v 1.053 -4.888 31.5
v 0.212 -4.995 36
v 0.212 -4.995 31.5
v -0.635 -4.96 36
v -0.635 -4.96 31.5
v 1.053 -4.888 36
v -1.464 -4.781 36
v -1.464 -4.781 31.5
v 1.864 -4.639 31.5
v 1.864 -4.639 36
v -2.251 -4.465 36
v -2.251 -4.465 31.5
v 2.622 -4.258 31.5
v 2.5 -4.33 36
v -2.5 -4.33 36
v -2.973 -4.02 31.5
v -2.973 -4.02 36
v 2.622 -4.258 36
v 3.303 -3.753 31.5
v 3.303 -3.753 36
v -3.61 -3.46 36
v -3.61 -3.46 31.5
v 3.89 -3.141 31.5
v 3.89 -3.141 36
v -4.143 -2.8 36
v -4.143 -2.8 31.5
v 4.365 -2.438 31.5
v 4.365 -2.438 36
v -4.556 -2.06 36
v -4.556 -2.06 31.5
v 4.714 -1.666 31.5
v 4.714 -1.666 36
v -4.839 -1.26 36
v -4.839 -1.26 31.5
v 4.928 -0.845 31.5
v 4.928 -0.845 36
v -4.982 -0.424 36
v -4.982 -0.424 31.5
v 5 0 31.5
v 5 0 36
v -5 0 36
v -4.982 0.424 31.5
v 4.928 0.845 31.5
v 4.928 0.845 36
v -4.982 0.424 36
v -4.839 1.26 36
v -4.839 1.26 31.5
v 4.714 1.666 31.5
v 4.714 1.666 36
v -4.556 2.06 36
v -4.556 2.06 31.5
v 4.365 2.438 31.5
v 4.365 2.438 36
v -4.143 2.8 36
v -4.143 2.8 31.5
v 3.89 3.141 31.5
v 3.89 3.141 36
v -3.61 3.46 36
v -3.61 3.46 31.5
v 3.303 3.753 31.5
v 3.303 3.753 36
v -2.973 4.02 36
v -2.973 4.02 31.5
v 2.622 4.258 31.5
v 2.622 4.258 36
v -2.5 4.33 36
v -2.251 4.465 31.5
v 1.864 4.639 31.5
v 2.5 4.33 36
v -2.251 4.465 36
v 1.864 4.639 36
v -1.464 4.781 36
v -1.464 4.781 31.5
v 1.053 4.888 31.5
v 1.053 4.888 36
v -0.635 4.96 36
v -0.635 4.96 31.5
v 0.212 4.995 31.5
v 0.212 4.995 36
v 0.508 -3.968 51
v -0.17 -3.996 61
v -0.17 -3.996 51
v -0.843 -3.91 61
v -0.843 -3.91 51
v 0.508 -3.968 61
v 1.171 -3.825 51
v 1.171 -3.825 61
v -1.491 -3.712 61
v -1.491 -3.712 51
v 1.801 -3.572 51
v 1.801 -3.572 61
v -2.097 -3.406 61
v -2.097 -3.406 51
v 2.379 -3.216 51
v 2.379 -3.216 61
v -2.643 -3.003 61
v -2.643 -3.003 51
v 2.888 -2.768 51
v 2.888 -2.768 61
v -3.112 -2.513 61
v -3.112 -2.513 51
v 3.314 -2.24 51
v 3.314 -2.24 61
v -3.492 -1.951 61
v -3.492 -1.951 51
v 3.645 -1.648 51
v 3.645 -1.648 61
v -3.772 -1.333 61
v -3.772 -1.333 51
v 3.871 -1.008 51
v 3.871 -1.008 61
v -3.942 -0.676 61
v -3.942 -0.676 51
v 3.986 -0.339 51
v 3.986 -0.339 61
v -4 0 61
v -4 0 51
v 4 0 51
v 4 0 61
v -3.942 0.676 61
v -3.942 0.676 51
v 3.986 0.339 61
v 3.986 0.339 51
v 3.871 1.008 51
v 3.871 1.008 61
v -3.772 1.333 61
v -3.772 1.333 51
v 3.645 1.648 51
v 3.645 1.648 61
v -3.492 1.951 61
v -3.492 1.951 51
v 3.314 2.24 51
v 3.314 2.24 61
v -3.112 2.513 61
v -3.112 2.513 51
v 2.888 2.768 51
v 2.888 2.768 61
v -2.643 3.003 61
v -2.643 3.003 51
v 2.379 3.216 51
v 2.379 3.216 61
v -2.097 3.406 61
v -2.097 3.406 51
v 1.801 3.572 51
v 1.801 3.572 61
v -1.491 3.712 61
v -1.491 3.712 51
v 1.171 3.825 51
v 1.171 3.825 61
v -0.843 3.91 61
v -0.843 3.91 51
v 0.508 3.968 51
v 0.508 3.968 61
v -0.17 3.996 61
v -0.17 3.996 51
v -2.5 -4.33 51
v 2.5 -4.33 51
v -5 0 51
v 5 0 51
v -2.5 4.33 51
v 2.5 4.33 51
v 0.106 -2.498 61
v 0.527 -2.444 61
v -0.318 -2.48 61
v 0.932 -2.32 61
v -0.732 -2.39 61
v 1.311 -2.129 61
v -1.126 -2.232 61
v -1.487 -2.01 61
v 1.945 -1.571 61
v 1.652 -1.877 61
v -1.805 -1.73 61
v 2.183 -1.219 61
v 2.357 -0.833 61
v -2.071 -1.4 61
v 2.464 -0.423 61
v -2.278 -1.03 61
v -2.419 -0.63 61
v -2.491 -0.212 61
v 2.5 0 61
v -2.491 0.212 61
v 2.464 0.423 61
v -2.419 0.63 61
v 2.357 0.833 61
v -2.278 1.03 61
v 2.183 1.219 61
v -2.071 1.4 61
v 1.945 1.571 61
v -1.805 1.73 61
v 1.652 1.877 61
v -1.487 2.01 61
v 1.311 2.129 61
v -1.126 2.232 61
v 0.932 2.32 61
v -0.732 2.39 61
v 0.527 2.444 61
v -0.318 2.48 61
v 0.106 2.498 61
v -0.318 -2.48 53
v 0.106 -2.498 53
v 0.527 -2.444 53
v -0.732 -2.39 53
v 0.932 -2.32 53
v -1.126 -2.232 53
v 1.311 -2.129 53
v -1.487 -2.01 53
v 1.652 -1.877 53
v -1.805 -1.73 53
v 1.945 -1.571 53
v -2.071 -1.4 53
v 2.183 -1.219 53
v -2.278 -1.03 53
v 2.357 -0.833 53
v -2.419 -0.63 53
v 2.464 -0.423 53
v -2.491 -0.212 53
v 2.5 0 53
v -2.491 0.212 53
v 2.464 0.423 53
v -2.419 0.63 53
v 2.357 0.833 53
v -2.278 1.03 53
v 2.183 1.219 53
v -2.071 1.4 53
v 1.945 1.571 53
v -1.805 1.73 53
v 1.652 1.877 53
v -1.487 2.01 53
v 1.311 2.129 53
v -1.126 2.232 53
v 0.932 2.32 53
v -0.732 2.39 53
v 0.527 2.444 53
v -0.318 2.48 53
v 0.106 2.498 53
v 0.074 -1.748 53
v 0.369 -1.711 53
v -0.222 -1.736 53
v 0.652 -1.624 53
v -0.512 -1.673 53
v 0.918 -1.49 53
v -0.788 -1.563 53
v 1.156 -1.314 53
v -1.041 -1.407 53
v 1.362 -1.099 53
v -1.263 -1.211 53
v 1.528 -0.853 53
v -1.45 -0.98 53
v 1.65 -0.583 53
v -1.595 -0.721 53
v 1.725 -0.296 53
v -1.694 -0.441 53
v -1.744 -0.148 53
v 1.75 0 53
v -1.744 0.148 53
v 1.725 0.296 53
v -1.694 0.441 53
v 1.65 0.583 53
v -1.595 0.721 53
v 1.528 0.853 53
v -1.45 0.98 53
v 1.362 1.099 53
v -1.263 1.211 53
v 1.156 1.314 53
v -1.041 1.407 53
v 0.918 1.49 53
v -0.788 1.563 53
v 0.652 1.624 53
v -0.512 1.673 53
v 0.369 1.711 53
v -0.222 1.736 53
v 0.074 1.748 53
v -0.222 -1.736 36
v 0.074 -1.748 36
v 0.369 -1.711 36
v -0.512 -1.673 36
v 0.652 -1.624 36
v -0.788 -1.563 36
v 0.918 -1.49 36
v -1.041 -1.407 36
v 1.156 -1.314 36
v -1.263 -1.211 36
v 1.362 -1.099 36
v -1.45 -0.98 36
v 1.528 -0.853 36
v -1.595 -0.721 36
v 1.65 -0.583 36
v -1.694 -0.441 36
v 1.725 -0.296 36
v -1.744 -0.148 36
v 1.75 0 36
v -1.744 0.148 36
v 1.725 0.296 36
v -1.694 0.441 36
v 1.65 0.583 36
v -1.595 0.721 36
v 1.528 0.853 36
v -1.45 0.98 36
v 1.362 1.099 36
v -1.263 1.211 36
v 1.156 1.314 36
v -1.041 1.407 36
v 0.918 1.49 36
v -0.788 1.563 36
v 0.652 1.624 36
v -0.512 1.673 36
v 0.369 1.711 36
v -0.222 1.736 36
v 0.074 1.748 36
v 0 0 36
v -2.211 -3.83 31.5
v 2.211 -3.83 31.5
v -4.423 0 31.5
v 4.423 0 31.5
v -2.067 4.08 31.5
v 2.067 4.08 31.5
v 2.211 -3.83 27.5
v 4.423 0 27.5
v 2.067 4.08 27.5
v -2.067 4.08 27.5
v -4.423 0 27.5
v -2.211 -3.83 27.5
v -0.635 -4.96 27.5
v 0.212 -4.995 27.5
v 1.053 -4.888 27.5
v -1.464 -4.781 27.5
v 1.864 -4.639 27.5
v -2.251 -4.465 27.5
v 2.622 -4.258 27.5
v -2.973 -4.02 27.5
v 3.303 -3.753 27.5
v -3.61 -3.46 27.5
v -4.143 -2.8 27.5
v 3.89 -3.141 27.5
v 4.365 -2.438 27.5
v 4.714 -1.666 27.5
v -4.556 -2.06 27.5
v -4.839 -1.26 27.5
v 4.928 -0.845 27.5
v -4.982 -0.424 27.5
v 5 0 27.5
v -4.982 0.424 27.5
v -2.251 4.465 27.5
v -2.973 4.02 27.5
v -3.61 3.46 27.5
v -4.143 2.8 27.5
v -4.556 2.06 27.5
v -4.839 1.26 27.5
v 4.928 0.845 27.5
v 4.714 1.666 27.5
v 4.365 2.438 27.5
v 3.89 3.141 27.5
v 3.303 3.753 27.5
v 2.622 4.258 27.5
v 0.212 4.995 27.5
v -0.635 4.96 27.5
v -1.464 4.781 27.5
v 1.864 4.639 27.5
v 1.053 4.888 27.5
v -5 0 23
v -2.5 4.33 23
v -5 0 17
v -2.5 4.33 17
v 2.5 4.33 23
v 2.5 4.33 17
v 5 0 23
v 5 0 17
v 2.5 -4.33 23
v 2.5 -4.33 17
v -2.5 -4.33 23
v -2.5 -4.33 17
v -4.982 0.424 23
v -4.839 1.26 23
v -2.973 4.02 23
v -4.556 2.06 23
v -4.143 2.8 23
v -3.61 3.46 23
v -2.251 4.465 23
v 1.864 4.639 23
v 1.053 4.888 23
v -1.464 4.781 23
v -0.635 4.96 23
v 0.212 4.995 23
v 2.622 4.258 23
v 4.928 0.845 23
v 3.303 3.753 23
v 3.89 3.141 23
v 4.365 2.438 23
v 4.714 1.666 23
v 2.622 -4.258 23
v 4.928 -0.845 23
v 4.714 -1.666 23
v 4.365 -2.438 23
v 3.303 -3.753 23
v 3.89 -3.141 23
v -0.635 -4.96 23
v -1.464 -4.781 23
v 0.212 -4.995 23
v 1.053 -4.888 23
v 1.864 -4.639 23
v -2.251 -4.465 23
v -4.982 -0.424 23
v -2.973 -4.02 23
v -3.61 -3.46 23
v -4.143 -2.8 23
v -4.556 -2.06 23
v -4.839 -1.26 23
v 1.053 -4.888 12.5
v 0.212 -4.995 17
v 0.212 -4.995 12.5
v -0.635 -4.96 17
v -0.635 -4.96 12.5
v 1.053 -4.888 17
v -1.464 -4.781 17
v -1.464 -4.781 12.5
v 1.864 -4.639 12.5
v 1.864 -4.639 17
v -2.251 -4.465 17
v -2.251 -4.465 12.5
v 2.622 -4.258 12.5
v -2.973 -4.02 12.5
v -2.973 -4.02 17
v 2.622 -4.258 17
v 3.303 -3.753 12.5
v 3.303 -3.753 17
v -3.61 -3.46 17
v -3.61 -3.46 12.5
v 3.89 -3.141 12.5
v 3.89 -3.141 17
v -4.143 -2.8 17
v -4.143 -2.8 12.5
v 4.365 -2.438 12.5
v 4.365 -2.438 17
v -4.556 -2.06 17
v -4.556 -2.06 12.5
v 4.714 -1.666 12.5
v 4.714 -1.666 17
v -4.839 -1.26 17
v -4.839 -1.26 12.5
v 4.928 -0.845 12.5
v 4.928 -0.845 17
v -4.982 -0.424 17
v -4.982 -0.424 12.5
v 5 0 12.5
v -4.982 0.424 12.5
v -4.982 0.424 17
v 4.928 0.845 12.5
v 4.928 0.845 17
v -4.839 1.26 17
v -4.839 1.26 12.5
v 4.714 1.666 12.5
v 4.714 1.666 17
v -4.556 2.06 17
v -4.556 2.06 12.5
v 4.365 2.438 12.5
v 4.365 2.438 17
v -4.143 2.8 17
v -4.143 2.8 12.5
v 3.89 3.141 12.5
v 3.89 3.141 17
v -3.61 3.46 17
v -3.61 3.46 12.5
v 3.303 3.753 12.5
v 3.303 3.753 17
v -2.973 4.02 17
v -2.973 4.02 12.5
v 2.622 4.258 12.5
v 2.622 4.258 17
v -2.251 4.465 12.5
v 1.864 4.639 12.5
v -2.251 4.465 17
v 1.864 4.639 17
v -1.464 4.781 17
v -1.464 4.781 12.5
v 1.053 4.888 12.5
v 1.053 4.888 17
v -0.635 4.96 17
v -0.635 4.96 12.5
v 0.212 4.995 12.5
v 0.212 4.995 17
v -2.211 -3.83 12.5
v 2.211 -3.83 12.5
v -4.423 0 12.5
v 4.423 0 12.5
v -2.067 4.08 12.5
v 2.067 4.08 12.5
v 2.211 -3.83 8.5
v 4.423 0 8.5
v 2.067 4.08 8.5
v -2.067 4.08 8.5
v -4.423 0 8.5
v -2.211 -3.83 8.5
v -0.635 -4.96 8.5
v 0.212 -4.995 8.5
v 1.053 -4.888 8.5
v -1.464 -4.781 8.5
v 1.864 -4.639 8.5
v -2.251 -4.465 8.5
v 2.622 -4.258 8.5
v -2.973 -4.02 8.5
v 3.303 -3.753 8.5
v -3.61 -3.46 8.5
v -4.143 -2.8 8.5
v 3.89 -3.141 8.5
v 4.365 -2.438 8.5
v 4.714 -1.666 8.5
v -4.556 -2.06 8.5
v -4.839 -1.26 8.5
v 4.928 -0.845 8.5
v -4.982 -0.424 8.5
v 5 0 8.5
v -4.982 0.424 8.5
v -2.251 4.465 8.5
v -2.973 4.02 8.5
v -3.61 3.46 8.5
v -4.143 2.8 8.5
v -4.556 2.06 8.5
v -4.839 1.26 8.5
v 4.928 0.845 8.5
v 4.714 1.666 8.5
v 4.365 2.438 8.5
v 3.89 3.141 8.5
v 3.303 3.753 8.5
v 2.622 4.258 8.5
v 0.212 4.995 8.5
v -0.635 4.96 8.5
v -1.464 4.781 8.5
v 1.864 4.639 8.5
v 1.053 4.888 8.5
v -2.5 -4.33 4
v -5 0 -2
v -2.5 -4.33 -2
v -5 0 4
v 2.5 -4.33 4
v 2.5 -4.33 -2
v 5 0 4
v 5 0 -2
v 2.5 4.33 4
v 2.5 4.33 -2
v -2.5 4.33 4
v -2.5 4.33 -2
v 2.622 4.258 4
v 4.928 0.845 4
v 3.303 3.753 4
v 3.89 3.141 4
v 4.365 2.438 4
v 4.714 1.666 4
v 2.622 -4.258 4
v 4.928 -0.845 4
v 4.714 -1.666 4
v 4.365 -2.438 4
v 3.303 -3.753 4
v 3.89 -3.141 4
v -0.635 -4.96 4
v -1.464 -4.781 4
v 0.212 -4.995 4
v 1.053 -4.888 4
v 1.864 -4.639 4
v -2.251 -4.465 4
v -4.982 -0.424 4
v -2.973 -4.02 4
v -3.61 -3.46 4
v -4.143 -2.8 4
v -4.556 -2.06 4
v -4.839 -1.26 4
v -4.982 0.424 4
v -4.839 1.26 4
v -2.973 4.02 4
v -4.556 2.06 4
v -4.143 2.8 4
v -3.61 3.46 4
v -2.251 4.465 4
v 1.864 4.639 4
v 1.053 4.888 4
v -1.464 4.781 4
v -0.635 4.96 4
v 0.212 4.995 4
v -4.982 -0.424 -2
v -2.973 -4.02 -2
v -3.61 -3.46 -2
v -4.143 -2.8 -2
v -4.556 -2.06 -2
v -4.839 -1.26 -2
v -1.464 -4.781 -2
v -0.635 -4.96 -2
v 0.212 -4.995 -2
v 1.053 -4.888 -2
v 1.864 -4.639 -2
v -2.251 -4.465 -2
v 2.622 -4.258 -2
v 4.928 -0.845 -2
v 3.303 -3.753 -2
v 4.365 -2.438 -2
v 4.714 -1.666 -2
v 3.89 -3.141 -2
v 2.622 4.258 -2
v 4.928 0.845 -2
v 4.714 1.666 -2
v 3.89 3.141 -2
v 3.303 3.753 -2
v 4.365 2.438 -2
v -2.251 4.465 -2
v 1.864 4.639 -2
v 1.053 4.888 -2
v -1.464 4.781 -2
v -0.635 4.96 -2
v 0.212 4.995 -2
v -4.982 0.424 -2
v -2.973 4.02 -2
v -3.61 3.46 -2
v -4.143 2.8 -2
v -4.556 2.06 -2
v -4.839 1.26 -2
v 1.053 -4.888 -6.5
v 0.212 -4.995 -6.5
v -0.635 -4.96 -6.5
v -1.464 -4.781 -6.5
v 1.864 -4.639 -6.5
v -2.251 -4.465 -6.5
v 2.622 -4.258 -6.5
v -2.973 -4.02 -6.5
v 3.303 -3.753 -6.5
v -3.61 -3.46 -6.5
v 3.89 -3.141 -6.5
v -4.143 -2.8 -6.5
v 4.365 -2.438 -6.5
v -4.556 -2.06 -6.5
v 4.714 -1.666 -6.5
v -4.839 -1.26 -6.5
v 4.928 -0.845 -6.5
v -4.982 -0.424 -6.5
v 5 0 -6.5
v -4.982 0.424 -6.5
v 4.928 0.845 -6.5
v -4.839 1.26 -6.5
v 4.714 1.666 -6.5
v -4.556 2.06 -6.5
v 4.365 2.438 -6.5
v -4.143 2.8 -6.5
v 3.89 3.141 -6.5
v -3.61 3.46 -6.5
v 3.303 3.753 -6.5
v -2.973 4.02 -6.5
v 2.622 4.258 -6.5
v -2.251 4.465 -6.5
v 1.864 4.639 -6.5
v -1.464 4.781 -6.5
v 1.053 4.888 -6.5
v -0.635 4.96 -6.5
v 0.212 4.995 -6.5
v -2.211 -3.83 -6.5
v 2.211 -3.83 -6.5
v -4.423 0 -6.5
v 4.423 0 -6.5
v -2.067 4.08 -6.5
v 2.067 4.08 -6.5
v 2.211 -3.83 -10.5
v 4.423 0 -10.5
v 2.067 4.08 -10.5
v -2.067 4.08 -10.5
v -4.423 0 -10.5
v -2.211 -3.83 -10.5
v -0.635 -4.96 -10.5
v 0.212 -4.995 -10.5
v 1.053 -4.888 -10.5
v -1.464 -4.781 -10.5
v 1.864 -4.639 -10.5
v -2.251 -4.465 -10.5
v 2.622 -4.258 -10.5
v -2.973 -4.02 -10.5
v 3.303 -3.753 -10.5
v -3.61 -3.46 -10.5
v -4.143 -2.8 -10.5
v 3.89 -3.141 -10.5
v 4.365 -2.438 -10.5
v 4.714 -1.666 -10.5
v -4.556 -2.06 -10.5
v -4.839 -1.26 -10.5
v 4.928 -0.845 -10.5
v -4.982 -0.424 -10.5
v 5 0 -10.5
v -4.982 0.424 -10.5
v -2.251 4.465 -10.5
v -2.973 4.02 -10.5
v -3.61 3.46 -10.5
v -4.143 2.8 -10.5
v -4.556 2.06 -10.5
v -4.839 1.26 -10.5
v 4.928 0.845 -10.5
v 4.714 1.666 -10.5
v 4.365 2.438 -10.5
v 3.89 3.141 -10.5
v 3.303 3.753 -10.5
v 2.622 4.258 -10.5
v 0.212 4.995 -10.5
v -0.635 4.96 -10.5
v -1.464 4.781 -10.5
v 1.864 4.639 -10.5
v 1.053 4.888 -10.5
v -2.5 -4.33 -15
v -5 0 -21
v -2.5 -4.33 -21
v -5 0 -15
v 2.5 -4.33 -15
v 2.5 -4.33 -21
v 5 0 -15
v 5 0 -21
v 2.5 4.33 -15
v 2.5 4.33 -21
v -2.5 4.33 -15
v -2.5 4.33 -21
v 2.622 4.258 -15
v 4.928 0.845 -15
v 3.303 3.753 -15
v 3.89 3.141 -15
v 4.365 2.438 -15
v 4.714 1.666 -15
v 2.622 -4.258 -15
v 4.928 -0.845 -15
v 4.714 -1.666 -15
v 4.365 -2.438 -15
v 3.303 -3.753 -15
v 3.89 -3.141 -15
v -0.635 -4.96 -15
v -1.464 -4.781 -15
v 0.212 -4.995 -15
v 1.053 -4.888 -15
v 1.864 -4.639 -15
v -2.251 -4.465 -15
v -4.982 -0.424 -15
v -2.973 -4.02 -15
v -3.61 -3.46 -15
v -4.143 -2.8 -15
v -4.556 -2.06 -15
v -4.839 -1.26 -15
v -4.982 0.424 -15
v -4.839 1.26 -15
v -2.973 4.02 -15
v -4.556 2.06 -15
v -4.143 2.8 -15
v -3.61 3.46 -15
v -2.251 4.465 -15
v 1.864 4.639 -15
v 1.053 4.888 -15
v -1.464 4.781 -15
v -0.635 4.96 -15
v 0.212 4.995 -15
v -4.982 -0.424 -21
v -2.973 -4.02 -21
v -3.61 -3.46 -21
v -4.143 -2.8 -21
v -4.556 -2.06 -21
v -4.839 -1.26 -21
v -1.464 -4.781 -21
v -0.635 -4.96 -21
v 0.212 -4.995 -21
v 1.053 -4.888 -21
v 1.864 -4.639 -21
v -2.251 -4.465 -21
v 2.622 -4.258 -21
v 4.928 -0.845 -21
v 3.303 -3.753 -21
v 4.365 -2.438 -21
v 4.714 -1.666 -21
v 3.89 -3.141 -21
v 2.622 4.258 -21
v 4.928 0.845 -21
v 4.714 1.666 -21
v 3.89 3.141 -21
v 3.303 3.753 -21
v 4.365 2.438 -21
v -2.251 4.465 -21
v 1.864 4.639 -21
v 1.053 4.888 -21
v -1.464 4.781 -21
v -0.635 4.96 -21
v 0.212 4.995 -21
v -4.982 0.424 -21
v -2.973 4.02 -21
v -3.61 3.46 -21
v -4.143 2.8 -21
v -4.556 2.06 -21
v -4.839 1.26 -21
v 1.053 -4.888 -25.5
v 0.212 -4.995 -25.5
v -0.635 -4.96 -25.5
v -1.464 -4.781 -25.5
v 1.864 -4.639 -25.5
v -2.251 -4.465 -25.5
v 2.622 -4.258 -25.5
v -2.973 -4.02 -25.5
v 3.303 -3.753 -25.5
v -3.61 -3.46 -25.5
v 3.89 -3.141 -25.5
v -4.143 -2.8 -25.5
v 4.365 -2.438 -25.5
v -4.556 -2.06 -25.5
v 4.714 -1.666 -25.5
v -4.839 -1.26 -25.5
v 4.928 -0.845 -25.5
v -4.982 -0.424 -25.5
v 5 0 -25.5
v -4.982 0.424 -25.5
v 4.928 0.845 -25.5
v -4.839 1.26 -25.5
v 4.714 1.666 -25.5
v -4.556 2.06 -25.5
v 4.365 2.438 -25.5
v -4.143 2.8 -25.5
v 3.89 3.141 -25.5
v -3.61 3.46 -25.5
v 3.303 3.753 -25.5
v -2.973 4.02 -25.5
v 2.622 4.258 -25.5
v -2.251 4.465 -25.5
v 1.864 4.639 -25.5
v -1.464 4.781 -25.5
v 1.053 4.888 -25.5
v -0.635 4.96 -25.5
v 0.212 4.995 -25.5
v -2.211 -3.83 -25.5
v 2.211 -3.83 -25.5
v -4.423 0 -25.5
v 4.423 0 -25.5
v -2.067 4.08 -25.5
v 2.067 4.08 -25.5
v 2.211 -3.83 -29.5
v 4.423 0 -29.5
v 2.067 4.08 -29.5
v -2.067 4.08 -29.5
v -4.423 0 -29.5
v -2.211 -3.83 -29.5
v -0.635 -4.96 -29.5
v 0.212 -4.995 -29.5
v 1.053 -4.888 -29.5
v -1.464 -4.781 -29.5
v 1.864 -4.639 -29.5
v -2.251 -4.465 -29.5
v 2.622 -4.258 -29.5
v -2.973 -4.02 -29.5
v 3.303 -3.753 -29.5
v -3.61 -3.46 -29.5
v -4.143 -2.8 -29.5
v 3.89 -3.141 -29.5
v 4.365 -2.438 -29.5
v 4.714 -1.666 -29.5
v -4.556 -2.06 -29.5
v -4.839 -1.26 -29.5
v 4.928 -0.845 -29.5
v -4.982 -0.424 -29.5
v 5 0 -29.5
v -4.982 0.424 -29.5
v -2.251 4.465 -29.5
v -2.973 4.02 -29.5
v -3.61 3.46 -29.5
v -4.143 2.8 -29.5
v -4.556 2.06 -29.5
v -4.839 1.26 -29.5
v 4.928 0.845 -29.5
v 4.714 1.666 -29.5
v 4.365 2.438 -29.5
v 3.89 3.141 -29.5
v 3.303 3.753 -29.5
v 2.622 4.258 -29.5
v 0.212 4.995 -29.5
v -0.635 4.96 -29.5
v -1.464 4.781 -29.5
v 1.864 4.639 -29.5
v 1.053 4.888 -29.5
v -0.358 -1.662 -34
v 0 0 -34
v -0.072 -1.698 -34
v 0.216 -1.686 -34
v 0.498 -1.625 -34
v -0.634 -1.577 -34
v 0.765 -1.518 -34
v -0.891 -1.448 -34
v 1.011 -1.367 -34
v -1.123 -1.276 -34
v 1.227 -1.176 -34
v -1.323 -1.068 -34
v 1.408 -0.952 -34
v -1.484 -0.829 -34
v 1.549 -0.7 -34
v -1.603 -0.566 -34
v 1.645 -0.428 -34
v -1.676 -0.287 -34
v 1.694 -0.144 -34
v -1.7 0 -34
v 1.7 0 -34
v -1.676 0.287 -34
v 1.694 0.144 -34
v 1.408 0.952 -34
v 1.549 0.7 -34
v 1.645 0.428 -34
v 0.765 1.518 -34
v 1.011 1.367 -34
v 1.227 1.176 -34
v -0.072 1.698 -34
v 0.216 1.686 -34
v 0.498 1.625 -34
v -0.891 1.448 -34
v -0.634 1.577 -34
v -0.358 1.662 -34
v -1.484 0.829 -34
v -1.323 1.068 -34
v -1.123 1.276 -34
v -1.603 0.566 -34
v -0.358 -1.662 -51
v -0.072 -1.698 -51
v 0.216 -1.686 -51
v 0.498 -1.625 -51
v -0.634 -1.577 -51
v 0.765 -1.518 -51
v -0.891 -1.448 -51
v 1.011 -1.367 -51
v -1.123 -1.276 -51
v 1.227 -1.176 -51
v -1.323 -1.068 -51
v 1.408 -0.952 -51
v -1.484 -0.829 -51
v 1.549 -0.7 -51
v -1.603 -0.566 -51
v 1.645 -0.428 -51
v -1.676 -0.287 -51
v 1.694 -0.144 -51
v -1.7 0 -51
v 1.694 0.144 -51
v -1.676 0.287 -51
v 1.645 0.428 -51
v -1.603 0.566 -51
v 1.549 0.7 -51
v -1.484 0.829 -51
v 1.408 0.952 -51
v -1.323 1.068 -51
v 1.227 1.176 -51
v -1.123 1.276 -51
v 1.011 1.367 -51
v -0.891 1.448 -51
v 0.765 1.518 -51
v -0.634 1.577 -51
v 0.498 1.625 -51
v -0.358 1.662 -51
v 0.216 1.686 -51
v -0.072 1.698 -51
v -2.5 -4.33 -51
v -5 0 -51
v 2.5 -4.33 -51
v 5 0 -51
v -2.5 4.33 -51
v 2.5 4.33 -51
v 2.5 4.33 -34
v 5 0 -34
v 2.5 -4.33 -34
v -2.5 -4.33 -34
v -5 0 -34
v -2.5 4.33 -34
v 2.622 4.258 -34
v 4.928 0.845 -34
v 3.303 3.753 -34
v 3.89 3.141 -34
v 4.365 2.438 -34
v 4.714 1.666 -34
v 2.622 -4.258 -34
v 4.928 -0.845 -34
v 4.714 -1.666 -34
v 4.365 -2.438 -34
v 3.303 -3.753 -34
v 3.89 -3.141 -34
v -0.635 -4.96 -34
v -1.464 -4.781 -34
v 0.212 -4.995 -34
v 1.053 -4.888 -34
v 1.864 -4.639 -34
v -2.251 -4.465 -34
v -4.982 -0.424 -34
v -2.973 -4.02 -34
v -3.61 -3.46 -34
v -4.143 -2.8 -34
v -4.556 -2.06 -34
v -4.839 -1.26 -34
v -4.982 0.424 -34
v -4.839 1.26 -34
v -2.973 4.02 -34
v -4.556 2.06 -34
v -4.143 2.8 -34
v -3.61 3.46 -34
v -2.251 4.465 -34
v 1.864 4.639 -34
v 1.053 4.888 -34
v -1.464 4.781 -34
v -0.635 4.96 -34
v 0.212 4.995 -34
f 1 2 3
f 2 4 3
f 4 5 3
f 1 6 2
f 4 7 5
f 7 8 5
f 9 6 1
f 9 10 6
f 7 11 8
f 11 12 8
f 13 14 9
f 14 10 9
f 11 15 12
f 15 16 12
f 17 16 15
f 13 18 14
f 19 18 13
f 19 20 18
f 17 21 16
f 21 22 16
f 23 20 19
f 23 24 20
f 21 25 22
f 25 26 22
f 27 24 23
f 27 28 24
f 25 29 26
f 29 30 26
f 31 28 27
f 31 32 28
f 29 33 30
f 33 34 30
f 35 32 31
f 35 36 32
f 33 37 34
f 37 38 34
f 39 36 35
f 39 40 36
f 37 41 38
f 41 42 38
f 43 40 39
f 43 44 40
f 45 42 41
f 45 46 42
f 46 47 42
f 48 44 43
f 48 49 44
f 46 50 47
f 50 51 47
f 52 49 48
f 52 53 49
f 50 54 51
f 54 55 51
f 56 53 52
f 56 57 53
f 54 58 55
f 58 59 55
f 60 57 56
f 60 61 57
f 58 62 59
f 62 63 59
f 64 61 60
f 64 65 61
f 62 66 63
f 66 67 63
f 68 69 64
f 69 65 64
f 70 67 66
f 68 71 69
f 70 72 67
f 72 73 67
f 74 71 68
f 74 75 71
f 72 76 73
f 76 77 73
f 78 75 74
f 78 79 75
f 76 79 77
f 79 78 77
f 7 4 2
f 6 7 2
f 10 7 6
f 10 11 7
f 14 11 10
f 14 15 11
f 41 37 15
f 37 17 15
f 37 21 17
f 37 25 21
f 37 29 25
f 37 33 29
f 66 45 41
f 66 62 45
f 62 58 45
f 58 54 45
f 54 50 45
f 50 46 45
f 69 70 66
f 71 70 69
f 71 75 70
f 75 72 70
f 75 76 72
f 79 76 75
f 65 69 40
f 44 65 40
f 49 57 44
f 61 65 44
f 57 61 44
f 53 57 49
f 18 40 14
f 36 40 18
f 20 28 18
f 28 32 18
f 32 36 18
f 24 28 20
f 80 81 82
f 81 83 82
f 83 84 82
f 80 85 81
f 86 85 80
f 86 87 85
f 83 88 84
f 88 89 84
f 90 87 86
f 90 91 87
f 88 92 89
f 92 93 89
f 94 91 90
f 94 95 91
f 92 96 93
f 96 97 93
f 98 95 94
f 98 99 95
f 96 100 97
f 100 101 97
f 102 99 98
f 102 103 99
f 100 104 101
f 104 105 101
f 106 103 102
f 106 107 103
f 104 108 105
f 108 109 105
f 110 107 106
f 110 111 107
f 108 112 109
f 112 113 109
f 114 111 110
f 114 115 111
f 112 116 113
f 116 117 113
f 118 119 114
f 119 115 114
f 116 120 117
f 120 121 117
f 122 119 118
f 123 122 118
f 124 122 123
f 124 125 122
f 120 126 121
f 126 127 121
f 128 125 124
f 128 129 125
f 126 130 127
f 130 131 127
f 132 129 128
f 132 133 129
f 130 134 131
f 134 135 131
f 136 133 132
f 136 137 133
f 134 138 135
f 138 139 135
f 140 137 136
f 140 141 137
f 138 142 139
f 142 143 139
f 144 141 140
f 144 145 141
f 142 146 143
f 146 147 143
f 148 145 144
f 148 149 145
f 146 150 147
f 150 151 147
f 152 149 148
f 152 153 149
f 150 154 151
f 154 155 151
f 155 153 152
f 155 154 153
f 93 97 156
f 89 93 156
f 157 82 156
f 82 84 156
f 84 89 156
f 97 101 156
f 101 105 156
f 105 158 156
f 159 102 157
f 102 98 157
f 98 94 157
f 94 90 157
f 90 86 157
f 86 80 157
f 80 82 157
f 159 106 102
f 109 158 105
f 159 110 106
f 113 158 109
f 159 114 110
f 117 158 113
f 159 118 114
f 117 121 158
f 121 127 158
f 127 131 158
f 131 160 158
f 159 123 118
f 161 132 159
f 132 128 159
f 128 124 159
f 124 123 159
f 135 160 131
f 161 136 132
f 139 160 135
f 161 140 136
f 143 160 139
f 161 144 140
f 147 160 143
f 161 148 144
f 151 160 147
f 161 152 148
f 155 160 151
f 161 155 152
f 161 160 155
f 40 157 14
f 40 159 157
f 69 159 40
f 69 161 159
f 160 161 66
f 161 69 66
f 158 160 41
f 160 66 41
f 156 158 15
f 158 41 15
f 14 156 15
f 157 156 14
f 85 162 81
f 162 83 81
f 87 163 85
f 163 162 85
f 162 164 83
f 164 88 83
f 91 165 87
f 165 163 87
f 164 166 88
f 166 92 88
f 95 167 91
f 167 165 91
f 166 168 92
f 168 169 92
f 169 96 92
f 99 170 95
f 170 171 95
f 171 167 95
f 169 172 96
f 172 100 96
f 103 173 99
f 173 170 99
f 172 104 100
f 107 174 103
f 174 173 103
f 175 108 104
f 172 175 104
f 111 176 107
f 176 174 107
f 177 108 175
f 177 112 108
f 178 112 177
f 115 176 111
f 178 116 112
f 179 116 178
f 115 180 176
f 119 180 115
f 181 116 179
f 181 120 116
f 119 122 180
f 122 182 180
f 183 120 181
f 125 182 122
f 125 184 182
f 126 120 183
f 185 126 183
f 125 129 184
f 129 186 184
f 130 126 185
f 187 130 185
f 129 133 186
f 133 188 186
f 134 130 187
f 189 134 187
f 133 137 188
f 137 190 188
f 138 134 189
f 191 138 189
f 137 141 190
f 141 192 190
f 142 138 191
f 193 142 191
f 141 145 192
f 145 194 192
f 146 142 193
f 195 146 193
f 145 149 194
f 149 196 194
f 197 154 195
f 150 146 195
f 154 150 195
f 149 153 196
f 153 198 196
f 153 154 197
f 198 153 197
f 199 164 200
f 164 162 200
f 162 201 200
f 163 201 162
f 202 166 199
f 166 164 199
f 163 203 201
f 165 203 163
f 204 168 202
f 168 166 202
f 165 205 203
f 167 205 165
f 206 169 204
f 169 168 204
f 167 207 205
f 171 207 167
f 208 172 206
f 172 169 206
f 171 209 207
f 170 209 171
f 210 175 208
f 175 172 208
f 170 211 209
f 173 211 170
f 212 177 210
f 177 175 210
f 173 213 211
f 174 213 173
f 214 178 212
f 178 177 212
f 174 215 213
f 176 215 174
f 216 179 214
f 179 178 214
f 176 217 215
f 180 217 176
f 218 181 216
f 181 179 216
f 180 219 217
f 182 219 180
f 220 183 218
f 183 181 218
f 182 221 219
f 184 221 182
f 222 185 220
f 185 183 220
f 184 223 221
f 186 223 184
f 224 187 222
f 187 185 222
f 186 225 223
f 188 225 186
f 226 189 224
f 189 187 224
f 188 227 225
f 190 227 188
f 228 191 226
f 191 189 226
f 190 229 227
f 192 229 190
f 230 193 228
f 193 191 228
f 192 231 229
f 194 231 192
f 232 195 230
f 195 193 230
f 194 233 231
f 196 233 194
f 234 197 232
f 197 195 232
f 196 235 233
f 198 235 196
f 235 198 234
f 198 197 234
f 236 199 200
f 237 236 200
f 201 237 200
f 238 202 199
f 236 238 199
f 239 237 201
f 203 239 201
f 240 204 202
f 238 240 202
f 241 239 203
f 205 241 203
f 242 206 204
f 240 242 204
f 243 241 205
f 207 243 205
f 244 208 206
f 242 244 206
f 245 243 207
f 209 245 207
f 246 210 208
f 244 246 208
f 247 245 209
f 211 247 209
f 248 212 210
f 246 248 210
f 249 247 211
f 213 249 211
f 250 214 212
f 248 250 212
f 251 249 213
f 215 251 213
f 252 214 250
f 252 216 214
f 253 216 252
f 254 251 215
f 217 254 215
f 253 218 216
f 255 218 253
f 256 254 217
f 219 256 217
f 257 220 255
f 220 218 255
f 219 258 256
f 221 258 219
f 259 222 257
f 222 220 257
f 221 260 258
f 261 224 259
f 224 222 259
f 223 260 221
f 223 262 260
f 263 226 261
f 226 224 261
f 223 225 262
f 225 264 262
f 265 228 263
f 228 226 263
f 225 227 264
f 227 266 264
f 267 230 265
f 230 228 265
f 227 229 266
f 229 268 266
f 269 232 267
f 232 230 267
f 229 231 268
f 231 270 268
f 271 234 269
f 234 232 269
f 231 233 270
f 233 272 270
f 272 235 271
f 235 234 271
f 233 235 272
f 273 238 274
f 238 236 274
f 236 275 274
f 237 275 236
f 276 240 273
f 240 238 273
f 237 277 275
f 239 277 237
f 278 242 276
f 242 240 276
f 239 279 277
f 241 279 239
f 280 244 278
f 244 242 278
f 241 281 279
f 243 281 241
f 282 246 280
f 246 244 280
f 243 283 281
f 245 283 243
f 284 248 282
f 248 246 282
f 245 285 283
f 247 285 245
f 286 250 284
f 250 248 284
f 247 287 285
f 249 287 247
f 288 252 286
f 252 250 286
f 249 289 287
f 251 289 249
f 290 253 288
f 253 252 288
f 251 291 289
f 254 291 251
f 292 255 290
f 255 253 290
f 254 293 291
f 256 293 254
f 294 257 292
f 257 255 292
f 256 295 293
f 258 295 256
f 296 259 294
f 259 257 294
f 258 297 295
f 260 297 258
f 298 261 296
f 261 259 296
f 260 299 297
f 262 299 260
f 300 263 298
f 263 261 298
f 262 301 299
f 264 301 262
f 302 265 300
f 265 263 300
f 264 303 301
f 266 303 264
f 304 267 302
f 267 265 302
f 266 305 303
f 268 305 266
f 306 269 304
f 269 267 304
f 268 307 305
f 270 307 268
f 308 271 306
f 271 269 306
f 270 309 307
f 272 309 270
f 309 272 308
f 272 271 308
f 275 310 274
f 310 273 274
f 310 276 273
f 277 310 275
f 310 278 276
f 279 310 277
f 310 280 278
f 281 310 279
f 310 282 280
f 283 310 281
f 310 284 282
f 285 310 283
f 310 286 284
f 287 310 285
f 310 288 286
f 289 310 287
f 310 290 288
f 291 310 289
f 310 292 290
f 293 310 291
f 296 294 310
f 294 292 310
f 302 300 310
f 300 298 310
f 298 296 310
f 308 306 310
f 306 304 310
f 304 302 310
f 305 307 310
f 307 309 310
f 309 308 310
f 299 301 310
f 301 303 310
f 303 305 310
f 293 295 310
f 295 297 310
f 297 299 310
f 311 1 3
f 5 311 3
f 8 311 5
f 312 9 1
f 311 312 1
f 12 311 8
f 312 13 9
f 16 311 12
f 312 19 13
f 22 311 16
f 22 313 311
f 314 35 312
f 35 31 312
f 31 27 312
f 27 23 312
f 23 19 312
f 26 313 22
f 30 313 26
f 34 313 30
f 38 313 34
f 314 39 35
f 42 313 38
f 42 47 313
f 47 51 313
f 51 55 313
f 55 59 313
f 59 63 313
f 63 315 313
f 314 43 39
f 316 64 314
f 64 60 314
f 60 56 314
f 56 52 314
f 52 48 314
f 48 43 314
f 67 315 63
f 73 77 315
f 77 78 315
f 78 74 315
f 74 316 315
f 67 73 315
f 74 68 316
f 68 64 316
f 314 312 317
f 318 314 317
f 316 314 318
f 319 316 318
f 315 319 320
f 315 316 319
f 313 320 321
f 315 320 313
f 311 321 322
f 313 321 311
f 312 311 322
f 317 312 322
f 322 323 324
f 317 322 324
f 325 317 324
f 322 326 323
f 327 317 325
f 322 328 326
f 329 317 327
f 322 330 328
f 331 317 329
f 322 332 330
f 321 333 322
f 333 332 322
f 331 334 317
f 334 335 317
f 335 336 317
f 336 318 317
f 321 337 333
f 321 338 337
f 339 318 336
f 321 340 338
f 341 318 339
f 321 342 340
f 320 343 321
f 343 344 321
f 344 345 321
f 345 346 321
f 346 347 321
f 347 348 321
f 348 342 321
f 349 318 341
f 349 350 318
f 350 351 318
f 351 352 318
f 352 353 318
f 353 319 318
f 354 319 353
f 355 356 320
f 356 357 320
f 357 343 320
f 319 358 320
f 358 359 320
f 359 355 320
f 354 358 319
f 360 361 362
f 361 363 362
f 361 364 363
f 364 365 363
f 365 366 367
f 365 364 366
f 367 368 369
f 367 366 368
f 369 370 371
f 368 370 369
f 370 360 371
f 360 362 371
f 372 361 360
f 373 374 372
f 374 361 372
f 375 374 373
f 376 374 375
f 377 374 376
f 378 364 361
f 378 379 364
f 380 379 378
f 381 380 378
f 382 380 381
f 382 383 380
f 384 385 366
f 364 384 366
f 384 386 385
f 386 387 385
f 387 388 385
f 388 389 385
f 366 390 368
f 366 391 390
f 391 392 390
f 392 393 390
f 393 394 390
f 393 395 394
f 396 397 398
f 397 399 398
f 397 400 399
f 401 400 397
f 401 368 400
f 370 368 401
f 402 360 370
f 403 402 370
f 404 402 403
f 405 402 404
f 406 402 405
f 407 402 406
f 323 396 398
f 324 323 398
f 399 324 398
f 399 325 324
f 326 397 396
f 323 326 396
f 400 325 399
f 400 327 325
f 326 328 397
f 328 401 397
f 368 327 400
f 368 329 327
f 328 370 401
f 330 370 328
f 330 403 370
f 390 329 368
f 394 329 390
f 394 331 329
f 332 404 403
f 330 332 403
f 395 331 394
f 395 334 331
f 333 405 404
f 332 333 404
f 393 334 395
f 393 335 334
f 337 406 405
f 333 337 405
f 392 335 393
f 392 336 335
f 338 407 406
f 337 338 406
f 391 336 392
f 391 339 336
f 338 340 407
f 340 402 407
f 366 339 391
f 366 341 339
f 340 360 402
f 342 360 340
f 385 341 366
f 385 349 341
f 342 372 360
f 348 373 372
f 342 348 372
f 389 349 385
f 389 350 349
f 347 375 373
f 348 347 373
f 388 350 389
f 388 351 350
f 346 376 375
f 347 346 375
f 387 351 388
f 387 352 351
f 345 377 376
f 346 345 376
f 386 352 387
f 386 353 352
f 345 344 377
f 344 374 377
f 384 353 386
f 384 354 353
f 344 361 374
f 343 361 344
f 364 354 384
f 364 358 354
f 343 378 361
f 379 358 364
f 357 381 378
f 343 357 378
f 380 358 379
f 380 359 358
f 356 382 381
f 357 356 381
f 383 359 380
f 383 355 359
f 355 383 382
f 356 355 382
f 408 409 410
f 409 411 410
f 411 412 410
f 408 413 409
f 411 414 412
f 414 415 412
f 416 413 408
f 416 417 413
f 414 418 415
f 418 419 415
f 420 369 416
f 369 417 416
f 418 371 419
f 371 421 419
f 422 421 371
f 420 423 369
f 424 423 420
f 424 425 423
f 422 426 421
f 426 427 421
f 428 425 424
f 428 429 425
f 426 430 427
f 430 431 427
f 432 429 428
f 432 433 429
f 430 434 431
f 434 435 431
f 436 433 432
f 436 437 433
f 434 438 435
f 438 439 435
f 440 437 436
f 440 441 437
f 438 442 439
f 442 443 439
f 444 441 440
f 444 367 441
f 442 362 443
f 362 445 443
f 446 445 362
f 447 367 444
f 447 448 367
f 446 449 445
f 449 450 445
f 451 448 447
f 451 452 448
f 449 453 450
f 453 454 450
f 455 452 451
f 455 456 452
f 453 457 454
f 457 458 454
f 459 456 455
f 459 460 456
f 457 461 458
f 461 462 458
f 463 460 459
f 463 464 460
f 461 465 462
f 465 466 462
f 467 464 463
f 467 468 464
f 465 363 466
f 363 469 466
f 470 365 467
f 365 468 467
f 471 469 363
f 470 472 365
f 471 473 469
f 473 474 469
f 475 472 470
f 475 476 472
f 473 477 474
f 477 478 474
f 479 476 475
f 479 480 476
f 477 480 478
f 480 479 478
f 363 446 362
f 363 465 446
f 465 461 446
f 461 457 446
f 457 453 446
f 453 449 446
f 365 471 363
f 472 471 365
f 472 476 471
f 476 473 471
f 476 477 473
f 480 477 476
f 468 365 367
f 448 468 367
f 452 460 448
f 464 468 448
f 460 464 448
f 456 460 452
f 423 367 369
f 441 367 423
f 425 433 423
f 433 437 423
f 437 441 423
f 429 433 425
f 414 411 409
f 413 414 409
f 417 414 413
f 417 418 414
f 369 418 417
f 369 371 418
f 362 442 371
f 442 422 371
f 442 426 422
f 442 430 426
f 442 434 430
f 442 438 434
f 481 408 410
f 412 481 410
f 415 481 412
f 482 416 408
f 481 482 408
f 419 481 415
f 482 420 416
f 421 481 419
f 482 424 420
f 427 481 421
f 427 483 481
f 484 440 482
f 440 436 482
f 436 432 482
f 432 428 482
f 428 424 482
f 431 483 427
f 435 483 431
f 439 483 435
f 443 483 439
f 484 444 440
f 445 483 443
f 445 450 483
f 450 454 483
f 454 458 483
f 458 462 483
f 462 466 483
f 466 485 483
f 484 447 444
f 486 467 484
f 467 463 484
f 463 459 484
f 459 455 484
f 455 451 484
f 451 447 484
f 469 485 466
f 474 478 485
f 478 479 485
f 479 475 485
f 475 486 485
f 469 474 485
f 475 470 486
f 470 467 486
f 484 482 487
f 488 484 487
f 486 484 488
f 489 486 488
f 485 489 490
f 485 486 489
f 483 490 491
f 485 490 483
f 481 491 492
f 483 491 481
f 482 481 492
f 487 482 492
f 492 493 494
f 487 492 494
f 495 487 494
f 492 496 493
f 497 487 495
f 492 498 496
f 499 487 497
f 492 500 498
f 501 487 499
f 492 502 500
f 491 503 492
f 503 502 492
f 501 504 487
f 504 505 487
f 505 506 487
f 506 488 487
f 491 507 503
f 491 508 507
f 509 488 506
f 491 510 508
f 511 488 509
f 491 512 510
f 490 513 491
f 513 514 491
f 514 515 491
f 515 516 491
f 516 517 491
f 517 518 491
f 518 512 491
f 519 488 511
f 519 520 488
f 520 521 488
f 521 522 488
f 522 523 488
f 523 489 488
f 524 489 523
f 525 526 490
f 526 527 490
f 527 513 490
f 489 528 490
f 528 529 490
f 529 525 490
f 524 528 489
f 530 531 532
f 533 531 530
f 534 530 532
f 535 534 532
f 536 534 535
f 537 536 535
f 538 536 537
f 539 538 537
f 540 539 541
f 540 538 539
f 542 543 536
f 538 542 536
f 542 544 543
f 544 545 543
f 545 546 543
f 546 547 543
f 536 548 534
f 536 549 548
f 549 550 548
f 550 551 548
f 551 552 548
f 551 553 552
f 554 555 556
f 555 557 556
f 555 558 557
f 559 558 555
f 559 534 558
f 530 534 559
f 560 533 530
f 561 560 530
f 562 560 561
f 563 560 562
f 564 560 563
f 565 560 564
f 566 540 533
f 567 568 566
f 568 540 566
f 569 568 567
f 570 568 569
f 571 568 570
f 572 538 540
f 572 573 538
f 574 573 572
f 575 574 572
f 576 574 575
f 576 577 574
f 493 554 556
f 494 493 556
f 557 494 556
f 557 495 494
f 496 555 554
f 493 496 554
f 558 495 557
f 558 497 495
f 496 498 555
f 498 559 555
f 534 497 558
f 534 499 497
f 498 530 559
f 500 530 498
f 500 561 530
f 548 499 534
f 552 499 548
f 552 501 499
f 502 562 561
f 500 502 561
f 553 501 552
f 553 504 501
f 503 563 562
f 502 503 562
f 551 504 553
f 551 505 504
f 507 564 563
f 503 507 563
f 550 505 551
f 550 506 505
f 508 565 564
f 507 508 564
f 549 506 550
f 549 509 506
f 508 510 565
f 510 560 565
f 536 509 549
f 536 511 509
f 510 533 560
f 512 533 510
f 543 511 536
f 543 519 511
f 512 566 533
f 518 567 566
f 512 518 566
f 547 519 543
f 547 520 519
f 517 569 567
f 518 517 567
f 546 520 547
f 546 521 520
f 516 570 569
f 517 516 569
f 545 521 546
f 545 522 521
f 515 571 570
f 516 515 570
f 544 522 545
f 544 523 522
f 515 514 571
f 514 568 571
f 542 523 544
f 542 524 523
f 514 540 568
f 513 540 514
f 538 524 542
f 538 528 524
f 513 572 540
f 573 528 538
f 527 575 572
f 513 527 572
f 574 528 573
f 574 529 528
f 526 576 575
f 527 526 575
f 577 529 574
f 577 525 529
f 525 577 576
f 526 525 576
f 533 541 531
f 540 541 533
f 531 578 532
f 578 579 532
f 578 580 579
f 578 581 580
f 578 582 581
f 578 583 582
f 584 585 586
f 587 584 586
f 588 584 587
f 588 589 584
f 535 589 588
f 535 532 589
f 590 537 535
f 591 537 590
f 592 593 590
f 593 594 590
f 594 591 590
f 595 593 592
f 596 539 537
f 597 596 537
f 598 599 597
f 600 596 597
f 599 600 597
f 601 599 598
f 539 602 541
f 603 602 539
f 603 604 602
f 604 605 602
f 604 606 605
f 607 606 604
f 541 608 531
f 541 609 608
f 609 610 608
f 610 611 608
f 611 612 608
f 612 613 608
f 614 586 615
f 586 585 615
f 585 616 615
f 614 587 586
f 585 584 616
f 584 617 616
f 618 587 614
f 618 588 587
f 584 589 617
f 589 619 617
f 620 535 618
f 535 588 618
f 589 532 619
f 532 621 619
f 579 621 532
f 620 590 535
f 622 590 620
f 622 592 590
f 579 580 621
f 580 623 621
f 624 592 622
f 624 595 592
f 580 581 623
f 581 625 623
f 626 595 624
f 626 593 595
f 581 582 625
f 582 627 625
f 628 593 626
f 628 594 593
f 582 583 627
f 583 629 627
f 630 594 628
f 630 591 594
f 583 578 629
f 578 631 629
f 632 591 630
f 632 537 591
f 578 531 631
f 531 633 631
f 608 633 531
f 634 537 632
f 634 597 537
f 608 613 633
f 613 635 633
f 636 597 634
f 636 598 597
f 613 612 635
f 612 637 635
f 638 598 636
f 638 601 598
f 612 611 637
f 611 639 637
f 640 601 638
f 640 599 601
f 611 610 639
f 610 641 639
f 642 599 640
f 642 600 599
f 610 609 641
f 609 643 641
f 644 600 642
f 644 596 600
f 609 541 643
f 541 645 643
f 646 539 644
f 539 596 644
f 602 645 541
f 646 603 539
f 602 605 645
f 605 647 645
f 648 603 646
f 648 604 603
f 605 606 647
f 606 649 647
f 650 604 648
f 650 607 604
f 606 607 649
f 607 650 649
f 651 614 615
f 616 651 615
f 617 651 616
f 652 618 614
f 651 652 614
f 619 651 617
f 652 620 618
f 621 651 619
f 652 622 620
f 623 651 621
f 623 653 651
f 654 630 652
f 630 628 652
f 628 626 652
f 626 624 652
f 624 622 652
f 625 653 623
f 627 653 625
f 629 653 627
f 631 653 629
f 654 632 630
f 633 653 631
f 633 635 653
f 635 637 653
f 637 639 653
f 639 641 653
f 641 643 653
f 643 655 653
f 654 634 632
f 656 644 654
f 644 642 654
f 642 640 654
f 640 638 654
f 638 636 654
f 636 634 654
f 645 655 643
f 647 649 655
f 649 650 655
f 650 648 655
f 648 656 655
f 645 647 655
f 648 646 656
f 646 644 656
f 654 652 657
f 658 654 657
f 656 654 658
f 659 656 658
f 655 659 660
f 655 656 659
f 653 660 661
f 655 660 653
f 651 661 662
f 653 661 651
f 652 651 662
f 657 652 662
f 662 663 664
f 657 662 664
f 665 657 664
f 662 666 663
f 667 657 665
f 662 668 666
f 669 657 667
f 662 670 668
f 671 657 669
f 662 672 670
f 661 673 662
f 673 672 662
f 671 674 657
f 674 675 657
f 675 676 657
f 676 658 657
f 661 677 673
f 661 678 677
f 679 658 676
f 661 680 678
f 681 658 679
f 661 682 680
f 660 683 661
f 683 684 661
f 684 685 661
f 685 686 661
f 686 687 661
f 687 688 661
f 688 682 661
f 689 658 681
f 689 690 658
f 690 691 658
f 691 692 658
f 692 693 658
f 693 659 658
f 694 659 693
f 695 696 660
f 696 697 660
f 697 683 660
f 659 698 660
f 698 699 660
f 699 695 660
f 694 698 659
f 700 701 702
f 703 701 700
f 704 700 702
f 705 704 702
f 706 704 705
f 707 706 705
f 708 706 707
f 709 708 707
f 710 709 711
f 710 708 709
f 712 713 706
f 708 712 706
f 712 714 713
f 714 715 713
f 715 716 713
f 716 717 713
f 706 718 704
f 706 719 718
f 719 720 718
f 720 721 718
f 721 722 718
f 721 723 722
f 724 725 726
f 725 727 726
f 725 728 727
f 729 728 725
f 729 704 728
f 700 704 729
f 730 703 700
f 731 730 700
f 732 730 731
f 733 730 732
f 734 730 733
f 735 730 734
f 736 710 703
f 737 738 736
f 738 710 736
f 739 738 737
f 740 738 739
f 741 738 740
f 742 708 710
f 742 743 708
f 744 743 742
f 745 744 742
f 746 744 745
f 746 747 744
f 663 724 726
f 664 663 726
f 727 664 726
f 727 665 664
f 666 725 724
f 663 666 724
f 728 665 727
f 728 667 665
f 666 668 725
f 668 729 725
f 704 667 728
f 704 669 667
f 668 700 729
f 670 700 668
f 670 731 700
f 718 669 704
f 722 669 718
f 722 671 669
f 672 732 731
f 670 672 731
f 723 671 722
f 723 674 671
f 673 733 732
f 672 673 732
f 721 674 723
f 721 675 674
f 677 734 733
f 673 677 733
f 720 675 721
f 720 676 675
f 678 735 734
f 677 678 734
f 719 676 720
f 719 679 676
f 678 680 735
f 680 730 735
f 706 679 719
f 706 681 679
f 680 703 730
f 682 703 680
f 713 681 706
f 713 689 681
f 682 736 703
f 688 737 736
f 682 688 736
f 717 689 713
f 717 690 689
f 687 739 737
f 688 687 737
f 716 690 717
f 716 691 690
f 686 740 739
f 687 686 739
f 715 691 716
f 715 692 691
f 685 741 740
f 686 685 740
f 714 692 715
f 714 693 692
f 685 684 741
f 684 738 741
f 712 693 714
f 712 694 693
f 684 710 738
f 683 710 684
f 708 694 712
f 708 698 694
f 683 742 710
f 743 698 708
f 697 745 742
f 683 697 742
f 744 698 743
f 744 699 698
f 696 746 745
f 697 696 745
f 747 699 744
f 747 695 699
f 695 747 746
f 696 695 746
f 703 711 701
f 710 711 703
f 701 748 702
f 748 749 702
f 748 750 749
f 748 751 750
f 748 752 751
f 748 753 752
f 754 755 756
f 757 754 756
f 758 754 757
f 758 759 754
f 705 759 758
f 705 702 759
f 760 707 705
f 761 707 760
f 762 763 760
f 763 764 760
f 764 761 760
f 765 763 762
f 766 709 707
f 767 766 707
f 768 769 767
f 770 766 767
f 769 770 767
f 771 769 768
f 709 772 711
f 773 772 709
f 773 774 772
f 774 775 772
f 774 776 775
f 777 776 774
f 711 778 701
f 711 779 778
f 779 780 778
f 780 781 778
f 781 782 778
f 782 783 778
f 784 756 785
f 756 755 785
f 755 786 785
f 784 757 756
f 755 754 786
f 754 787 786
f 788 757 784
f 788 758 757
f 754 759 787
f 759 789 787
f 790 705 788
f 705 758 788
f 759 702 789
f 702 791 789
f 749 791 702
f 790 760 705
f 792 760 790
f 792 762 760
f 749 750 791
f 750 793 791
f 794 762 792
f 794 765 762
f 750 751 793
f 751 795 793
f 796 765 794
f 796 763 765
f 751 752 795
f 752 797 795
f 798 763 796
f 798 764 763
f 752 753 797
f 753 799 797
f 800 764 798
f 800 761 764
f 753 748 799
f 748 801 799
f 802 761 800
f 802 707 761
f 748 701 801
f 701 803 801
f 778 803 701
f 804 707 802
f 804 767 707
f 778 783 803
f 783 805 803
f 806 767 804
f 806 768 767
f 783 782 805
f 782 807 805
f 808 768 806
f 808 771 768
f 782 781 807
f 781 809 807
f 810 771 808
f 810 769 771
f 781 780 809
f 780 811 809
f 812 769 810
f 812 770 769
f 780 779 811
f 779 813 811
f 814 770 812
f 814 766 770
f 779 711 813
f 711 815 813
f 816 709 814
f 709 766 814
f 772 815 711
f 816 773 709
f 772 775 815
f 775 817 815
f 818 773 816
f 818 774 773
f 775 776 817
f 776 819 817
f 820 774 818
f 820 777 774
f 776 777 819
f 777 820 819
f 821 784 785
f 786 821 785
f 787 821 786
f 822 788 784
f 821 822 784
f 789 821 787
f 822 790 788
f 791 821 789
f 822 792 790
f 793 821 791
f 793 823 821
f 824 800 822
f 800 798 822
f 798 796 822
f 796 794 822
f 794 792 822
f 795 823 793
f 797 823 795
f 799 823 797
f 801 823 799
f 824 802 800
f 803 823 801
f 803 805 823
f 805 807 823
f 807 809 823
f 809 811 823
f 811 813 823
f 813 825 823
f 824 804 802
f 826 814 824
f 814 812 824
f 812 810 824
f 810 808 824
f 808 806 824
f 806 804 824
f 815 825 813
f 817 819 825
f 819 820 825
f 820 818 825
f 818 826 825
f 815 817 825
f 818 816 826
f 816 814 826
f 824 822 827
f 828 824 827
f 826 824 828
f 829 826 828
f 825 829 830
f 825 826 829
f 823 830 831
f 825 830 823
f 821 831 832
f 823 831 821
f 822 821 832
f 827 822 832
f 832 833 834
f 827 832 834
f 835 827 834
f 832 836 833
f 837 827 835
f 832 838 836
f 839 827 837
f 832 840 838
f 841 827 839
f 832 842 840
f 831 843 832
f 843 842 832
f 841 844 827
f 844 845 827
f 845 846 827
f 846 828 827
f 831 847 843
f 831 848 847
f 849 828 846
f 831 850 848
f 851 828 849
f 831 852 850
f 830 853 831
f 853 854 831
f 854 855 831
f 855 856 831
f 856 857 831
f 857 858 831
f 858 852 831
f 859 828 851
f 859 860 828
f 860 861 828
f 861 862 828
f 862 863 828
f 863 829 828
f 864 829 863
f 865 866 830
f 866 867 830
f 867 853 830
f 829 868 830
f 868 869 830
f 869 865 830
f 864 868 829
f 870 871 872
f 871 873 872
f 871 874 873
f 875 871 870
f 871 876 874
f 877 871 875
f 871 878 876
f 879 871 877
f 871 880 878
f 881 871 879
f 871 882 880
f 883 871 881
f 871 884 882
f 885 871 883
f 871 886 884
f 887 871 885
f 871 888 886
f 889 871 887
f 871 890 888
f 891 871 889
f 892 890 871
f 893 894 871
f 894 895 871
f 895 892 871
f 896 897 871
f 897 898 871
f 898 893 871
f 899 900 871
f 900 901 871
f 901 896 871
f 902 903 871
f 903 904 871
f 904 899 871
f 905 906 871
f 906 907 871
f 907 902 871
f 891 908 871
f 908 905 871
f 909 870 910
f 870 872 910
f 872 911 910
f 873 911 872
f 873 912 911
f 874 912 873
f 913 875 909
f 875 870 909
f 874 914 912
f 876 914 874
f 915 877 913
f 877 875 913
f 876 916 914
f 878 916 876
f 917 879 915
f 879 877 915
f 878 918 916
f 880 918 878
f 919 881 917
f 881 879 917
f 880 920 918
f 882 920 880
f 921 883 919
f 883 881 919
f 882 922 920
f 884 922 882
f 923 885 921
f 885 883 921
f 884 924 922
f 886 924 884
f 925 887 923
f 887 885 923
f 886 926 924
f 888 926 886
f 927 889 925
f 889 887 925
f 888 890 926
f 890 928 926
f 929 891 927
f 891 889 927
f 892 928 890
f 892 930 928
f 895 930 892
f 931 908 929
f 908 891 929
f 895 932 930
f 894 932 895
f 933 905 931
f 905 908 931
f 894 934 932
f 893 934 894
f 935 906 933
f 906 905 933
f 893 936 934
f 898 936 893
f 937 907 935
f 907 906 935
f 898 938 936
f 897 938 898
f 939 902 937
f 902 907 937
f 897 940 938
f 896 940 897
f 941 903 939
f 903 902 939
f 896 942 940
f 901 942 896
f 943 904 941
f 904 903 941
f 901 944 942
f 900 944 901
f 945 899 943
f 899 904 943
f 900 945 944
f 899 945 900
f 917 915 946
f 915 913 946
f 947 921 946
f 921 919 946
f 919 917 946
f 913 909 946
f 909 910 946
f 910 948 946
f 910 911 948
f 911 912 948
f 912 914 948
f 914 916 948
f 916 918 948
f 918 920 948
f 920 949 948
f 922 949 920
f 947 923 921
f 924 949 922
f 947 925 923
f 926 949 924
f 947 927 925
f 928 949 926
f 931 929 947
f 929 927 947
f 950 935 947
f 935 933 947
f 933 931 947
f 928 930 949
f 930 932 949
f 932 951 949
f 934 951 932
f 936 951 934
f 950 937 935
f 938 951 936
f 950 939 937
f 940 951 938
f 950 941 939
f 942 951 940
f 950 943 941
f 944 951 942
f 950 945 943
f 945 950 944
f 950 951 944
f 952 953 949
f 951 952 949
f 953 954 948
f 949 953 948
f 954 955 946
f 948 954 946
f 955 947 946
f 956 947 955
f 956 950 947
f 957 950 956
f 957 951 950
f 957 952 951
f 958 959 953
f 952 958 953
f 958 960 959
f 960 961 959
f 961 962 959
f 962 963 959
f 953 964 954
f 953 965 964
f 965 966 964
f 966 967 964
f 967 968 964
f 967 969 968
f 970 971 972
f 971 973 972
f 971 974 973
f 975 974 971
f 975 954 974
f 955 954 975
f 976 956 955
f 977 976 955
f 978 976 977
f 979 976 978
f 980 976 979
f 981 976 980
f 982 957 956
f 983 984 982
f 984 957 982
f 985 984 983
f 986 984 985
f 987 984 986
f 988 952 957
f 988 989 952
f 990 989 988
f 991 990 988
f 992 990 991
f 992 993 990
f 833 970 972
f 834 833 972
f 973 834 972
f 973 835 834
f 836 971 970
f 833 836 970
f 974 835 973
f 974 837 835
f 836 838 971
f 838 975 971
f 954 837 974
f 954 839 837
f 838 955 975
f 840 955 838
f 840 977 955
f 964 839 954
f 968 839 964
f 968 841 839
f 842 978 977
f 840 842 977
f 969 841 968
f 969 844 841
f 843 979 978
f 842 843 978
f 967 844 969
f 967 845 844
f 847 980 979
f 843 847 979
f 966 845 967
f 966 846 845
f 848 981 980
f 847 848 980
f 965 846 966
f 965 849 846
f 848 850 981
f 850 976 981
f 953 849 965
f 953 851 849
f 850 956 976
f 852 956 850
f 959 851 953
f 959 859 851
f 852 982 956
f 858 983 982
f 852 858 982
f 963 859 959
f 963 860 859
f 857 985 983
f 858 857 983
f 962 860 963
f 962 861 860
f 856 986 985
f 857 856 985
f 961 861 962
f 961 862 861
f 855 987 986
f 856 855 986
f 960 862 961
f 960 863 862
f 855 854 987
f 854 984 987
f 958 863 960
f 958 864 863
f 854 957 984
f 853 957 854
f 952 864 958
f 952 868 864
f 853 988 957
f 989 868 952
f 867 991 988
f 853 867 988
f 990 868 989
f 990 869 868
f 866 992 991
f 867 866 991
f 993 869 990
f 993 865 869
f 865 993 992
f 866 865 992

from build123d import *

# Parameters (mm, degrees)
BOSS_EXTRUDE1_DEPTH      = 51
BOSS_EXTRUDE1_DEPTH_BACK = 51
SKETCH2_R                = 4
BOSS_EXTRUDE2_DEPTH      = 10
SKETCH3_R                = 2.5
CUT_EXTRUDE1_DEPTH       = 8
SKETCH4_R                = 1.75
CUT_EXTRUDE2_DEPTH       = 30
SKETCH5_R                = 1.7
CUT_EXTRUDE3_DEPTH       = 30
SKETCH7_R                = 5
BOSS_EXTRUDE3_DEPTH      = 6.5
CUT_EXTRUDE_THIN2_DEPTH  = 2
LPATTERN1_COUNT          = 4
LPATTERN1_PITCH          = 19


with BuildPart() as part:
    # Sketch1 → Boss-Extrude1 (new, two sides: drawn at the far end of the back side and taken through both)
    with BuildSketch(Plane.XY.offset(-BOSS_EXTRUDE1_DEPTH_BACK)):
        Polygon((2.5, -4.330127019), (5, 0), (2.5, 4.330127019), (-2.5, 4.330127019), (-5, 0), (-2.5, -4.330127019), align=None)
    extrude(amount=BOSS_EXTRUDE1_DEPTH + BOSS_EXTRUDE1_DEPTH_BACK)

    # Sketch2 → Boss-Extrude2 (add)
    with BuildSketch(Plane.XY.offset(51)):
        Circle(SKETCH2_R)
    extrude(amount=BOSS_EXTRUDE2_DEPTH)

    # Sketch3 → Cut-Extrude1 (cut)
    with BuildSketch(Plane.XY.offset(61)):
        Circle(SKETCH3_R)
    extrude(amount=-CUT_EXTRUDE1_DEPTH, mode=Mode.SUBTRACT)

    # Sketch4 → Cut-Extrude2 (cut)
    with BuildSketch(Plane.XY.offset(53)):
        Circle(SKETCH4_R)
    extrude(amount=-CUT_EXTRUDE2_DEPTH, mode=Mode.SUBTRACT)

    # Sketch5 → Cut-Extrude3 (cut)
    with BuildSketch(Plane(origin=(0, 0, -51), x_dir=(-1, 0, 0), z_dir=(0, 0, -1))):
        Circle(SKETCH5_R)
    extrude(amount=-CUT_EXTRUDE3_DEPTH, mode=Mode.SUBTRACT)

    # Sketch7 → Boss-Extrude3 (add, symmetric)
    with BuildSketch(Plane.XY.offset(29.5)):
        Circle(SKETCH7_R)
    boss_extrude3 = extrude(amount=BOSS_EXTRUDE3_DEPTH, both=True)

    # Sketch8 → Cut-Extrude-Thin2 (cut, symmetric)
    with BuildSketch(Plane.XY.offset(29.5)):
        Polygon((3.366025404, -5.830127019), (-3.366025404, -5.830127019), (-6.732050808, 0), (-3.221687836, 6.080127019), (3.221687836, 6.080127019), (6.732050808, 0), align=None)
        Polygon((2.211324865, -3.830127019), (-2.211324865, -3.830127019), (-4.422649731, 0), (-2.066987298, 4.080127019), (2.066987298, 4.080127019), (4.422649731, 0), align=None, mode=Mode.SUBTRACT)
    cut_extrude_thin2 = extrude(amount=CUT_EXTRUDE_THIN2_DEPTH, both=True, mode=Mode.SUBTRACT)

    # LPattern1: Boss-Extrude3, Cut-Extrude-Thin2 ×4
    with Locations(*[(0, 0, -i * LPATTERN1_PITCH) for i in range(1, LPATTERN1_COUNT)]):
        add(boss_extrude3)
        add(cut_extrude_thin2, mode=Mode.SUBTRACT)


solid = part.part
